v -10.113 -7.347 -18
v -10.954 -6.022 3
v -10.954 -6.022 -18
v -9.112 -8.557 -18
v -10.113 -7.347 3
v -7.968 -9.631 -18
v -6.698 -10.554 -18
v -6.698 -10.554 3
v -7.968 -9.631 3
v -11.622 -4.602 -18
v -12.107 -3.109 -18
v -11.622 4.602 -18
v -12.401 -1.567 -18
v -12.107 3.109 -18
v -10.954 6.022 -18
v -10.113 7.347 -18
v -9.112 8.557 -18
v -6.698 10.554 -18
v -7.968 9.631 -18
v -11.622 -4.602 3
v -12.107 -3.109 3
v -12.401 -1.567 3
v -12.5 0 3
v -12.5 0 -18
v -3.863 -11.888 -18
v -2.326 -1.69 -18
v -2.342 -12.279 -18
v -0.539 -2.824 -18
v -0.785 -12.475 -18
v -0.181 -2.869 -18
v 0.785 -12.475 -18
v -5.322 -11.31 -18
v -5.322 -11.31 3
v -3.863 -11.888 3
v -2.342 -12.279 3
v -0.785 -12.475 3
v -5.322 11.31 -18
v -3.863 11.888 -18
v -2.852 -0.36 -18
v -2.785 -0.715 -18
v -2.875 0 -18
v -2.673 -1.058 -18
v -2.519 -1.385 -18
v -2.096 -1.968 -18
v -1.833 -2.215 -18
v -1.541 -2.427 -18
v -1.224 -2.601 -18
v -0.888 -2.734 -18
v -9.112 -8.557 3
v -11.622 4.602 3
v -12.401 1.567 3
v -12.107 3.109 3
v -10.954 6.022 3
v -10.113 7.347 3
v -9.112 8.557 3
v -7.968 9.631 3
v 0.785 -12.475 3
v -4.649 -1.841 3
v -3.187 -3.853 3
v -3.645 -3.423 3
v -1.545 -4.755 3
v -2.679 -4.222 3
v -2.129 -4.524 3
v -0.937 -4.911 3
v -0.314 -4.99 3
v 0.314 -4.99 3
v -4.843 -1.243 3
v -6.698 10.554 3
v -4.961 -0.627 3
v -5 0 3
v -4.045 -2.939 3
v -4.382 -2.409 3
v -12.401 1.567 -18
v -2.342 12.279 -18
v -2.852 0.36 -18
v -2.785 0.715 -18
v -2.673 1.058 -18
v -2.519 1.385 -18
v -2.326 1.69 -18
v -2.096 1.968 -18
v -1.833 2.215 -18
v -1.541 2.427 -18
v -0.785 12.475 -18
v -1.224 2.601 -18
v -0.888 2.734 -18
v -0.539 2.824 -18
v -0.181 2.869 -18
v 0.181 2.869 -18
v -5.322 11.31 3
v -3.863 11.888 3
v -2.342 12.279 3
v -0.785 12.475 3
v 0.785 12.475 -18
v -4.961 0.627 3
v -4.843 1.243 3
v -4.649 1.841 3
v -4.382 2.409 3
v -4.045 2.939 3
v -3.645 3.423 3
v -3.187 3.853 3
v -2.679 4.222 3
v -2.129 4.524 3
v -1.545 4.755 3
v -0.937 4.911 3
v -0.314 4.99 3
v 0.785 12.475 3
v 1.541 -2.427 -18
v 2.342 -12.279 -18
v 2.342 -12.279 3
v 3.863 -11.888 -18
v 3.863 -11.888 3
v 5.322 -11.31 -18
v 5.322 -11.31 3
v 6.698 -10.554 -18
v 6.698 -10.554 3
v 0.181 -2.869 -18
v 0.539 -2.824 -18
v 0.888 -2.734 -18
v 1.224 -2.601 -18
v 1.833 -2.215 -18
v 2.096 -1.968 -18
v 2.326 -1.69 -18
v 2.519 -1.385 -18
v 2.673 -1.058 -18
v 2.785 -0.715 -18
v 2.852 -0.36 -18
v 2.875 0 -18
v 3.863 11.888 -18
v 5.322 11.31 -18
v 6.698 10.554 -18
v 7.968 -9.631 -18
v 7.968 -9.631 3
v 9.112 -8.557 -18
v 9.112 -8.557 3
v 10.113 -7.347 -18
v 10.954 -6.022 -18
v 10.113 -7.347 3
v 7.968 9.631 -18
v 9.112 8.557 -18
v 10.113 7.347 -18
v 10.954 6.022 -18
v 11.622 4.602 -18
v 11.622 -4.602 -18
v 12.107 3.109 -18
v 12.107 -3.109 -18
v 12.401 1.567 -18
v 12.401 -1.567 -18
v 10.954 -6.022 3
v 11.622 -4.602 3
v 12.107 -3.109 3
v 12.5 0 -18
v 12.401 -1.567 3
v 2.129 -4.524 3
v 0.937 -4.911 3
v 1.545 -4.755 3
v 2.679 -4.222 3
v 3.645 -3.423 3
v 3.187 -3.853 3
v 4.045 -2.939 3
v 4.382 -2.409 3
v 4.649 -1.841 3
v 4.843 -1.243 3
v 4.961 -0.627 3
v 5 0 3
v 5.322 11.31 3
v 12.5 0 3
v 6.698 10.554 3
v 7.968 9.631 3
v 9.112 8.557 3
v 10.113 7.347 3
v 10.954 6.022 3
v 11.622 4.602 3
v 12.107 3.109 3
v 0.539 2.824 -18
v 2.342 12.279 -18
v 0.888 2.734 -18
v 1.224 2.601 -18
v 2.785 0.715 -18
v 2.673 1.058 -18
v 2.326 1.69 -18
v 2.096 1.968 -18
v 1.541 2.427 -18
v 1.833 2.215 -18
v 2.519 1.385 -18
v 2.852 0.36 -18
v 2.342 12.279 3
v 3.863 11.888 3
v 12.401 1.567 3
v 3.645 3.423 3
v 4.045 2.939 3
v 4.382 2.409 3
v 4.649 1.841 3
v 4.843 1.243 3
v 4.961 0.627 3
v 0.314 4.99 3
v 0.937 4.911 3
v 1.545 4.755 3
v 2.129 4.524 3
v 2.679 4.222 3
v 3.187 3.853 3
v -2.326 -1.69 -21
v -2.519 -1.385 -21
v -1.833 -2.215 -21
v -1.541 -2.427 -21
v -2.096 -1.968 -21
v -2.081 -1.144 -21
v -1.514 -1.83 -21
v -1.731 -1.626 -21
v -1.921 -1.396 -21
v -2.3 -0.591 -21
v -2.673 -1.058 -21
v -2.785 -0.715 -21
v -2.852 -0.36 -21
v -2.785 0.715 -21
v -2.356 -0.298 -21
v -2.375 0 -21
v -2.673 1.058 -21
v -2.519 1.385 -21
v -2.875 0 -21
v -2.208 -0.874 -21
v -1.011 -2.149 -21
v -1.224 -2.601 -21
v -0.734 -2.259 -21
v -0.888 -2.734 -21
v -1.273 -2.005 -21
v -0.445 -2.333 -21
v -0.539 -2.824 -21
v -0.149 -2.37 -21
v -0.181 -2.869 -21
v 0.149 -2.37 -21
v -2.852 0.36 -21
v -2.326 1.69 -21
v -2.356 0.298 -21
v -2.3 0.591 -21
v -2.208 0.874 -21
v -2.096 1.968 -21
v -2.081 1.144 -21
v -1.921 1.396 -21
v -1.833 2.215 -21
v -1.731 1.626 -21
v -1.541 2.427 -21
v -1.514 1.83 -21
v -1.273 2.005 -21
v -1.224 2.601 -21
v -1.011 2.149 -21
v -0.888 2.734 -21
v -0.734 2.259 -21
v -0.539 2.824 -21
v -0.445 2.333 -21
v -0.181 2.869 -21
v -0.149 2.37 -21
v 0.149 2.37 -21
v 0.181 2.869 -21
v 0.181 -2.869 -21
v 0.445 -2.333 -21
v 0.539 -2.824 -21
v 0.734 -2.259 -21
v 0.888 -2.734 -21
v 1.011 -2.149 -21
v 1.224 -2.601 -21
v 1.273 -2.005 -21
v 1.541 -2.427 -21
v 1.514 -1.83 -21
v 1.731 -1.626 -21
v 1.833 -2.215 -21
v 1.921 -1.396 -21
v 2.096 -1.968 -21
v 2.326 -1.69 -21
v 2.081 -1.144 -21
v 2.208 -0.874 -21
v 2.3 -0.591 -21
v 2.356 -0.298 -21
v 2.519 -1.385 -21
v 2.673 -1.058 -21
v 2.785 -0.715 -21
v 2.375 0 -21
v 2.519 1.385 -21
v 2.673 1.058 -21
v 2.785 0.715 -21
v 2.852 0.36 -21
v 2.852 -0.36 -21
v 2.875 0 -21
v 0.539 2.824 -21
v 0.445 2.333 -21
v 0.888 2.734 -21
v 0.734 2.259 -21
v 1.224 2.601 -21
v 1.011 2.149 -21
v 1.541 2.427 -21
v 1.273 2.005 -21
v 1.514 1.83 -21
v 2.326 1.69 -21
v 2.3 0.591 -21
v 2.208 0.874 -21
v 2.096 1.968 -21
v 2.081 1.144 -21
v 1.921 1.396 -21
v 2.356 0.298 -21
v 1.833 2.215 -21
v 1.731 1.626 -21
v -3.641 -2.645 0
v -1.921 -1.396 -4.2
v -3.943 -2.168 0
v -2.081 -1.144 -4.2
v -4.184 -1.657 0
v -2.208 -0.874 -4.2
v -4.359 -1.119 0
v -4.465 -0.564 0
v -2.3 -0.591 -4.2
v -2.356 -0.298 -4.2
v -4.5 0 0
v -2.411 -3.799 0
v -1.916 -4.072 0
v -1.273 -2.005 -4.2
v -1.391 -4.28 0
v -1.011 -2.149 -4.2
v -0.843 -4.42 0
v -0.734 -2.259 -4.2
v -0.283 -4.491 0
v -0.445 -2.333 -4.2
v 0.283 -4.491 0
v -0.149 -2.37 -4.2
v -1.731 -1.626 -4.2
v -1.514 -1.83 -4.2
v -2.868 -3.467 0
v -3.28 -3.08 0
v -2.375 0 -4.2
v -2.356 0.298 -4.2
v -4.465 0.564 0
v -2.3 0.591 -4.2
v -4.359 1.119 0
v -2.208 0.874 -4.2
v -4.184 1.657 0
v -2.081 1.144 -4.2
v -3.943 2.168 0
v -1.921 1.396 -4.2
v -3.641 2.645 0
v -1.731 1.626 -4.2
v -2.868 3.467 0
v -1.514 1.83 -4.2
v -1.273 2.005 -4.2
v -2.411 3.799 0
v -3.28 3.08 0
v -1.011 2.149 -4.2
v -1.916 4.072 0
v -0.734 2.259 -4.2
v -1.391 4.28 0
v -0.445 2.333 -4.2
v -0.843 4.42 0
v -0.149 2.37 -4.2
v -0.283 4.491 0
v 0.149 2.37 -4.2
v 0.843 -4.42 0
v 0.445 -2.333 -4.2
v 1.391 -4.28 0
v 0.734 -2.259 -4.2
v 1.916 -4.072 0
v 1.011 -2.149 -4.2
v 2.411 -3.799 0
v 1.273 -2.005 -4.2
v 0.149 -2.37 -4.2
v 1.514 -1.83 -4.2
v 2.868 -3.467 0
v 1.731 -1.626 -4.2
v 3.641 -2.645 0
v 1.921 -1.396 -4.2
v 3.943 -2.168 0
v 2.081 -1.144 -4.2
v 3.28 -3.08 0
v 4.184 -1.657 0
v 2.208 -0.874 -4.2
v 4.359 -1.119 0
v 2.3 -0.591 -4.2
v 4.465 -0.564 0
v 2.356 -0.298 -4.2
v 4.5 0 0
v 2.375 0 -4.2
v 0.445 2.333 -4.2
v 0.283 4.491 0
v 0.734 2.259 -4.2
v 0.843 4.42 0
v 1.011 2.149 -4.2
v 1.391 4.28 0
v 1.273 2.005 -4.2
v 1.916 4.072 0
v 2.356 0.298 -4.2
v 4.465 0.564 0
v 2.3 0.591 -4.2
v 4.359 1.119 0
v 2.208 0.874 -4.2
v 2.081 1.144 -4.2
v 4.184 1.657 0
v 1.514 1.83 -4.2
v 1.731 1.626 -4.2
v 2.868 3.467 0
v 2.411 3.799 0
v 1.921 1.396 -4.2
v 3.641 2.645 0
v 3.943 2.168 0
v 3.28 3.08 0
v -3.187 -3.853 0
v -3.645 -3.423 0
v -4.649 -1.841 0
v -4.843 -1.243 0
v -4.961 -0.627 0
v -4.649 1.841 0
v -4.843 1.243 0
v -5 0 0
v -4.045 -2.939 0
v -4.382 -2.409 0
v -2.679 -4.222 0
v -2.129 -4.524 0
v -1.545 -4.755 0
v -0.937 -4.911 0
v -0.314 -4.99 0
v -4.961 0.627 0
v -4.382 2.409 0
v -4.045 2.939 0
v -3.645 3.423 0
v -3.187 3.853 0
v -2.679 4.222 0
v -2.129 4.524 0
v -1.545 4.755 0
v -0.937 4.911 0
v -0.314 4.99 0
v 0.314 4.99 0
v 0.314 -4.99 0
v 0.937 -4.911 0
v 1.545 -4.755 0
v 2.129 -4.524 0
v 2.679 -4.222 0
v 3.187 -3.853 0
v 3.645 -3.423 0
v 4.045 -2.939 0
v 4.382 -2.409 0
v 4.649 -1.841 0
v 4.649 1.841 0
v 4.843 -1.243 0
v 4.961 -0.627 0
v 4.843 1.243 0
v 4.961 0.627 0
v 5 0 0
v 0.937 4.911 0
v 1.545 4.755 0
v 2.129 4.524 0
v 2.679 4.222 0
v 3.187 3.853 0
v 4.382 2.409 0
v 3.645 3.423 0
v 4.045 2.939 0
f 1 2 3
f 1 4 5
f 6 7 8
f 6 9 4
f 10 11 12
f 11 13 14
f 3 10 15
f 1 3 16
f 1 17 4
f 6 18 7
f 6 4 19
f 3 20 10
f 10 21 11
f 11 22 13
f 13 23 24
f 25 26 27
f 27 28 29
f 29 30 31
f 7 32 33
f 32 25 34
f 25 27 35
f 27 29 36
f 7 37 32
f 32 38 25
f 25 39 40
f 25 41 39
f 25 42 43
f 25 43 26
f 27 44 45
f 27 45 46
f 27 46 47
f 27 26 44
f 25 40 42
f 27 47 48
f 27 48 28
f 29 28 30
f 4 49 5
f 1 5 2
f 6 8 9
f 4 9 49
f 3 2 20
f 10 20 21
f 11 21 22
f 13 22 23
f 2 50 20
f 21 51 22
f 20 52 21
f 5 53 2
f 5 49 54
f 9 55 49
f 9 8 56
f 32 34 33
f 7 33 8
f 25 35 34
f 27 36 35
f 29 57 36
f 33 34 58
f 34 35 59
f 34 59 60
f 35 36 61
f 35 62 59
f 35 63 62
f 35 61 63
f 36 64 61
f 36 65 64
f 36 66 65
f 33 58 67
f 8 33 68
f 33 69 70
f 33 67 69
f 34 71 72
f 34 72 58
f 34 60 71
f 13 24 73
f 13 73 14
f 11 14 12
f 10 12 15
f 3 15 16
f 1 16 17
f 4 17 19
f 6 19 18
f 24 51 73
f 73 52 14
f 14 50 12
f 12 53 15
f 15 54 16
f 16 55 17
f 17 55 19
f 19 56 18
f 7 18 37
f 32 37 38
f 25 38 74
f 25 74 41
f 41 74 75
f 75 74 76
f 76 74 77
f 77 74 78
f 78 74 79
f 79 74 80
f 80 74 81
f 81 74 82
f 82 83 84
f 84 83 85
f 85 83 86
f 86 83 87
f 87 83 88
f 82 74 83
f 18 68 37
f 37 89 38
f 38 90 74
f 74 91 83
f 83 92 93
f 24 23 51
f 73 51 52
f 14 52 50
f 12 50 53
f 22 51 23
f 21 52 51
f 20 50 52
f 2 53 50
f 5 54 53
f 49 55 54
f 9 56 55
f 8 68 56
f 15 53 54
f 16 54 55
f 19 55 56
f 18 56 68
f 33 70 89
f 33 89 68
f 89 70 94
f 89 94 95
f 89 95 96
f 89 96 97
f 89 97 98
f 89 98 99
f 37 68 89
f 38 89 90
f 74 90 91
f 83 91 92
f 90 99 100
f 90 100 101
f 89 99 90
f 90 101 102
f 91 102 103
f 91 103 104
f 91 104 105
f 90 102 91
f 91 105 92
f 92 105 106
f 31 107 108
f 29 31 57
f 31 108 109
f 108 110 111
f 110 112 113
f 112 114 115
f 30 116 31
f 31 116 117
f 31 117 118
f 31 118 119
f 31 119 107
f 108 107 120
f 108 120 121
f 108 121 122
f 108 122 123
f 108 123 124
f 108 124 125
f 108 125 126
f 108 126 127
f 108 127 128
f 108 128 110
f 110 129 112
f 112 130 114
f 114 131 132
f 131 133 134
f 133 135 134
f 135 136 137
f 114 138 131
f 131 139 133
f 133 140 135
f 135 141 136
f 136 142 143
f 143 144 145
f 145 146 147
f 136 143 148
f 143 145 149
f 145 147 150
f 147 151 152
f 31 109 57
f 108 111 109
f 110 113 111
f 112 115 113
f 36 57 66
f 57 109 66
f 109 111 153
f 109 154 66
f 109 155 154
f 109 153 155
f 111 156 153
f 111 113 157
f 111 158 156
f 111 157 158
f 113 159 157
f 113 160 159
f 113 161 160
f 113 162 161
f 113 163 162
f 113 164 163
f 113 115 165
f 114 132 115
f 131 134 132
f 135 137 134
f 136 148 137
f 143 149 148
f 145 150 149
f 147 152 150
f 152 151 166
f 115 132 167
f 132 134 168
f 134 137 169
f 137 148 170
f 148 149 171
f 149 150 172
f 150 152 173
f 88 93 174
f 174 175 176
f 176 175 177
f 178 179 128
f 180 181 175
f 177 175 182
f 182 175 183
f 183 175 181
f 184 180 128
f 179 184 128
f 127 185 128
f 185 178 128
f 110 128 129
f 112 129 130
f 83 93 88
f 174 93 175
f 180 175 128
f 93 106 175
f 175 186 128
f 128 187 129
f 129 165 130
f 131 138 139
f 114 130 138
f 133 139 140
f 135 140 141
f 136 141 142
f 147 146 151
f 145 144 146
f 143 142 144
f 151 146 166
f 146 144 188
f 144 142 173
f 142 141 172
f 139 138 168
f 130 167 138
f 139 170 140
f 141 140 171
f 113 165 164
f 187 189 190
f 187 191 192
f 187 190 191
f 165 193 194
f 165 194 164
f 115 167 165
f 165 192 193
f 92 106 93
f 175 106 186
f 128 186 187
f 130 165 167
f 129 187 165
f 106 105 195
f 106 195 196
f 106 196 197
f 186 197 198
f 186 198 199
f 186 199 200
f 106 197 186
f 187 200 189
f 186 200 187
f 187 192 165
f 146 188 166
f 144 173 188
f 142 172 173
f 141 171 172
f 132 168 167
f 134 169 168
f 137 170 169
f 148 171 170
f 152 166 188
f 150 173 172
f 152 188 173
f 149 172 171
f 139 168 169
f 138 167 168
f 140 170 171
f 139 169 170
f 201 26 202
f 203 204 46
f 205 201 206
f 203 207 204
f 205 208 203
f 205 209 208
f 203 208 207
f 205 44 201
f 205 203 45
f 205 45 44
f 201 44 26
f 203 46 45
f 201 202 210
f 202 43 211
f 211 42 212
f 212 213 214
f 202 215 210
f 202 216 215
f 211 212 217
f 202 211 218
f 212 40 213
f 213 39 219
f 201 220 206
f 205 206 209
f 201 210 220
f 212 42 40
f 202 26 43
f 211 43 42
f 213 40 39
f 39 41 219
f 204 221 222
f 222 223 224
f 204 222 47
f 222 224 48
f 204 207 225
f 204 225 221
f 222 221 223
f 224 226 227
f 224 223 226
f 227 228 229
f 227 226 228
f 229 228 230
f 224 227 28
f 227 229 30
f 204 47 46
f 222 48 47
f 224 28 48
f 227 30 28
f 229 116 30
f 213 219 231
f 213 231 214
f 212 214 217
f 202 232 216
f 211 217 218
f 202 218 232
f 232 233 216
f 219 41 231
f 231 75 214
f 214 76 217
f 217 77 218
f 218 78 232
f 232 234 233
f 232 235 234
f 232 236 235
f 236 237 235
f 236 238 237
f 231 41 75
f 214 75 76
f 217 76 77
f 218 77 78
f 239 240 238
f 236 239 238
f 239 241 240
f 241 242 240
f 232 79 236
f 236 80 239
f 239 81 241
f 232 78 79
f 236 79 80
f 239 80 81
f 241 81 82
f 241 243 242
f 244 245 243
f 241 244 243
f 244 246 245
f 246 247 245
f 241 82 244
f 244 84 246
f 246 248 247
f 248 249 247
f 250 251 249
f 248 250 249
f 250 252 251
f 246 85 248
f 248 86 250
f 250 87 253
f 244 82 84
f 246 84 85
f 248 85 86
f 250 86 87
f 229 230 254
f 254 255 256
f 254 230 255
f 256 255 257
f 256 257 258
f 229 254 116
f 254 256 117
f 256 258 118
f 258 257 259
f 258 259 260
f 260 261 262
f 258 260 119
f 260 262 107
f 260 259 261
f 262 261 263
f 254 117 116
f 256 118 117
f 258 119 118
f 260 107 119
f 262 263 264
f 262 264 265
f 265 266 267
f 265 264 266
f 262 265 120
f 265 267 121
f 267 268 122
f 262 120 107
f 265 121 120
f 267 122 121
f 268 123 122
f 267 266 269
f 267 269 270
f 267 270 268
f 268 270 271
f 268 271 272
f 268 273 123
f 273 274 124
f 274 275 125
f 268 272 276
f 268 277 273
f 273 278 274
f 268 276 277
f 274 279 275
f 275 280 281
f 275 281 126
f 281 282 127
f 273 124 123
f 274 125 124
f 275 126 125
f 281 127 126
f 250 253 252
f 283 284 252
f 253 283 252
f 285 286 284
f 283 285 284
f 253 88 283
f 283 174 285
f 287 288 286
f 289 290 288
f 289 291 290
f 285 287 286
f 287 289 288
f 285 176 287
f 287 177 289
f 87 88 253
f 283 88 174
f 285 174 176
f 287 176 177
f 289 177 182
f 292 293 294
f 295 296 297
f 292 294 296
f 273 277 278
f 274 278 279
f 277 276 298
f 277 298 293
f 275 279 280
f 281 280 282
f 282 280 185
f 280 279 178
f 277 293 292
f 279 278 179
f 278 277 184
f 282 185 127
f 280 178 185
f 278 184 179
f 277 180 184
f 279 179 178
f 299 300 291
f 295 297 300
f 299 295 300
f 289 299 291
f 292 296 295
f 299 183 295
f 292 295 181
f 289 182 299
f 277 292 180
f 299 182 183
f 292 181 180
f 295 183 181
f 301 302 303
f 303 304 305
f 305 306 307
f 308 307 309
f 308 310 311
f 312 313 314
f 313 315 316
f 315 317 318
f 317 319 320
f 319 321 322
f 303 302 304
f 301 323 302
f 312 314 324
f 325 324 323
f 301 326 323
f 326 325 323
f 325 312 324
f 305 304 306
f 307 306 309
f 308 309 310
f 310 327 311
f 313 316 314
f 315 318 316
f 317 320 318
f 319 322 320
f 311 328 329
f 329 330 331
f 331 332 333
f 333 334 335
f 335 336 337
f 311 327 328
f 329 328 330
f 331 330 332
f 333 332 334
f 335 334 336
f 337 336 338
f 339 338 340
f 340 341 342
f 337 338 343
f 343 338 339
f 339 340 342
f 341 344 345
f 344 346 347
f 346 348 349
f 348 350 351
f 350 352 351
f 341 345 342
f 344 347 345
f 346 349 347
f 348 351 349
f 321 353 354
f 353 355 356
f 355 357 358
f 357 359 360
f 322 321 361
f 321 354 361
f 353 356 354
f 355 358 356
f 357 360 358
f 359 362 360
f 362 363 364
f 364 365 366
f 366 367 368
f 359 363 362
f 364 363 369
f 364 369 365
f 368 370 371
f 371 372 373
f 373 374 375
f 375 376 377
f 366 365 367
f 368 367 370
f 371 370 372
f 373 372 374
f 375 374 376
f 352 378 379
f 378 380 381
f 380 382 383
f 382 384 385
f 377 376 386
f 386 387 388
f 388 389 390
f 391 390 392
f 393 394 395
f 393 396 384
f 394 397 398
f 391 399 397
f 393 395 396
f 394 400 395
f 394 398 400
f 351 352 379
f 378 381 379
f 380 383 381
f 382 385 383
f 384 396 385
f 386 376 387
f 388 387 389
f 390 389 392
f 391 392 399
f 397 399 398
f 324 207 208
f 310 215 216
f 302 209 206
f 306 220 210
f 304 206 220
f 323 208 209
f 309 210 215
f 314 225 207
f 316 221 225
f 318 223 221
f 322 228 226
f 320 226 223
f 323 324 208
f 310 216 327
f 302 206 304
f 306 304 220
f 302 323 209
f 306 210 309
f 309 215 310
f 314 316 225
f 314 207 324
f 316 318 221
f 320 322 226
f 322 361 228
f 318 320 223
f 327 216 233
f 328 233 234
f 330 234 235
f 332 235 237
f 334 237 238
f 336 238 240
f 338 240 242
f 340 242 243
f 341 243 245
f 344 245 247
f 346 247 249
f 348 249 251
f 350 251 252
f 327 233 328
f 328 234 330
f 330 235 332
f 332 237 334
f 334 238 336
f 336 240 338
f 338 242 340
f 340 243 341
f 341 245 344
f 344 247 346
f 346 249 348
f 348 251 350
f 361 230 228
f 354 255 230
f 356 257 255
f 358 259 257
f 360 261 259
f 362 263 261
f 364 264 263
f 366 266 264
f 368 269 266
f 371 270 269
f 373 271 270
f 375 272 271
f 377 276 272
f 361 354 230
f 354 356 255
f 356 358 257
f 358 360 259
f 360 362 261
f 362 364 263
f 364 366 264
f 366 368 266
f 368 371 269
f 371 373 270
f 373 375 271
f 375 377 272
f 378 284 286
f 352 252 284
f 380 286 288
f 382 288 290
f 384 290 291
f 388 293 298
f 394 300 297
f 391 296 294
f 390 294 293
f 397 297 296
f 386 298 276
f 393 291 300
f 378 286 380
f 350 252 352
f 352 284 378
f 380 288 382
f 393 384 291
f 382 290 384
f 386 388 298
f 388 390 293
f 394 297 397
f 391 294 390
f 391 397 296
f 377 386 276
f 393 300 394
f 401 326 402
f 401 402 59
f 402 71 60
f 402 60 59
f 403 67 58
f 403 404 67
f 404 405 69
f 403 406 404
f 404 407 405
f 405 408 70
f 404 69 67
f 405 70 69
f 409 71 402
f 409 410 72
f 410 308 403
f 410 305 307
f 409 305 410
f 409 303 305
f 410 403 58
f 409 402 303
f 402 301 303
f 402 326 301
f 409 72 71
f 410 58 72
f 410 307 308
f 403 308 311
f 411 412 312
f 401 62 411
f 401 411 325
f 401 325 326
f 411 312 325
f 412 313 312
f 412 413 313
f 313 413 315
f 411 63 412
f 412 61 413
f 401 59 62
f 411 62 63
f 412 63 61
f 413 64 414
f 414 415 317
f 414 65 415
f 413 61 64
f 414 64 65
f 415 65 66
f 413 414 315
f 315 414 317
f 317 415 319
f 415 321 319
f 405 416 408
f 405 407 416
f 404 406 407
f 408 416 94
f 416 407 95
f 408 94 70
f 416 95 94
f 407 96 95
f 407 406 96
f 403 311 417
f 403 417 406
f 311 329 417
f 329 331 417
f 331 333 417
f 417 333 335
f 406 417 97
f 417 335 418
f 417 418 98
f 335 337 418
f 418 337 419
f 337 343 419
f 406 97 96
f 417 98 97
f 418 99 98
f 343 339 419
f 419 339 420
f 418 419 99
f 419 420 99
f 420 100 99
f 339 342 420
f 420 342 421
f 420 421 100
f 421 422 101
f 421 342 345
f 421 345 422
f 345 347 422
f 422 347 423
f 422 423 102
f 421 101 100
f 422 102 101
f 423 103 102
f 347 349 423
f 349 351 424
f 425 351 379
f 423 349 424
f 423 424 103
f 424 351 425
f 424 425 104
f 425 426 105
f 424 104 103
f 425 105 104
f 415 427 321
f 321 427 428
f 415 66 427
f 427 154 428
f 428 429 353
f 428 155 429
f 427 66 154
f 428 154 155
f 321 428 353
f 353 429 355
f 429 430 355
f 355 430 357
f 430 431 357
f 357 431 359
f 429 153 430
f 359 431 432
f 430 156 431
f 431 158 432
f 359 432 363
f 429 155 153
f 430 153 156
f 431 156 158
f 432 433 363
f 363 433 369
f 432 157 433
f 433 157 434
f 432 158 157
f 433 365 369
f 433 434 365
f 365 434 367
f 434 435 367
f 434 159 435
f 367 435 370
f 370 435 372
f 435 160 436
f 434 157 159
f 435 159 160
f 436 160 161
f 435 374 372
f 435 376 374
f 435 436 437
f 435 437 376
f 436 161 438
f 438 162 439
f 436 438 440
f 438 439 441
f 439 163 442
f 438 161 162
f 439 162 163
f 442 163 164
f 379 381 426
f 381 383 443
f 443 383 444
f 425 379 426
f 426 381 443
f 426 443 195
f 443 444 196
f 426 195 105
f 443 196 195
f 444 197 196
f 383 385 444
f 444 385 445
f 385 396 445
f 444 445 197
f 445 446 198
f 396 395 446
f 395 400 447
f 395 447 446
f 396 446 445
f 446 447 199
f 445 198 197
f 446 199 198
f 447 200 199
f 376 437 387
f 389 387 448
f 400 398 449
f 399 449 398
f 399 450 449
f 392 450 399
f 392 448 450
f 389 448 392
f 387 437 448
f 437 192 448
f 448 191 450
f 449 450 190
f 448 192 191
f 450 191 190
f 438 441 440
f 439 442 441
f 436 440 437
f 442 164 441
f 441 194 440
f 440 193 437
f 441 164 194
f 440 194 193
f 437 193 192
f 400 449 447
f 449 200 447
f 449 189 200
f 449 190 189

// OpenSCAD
$fn = 50;

difference() {
	union() {
		translate(v = [0, 0, -18.0]) {
			cylinder(h = 21, r = 12.5);
		}
		#translate(v = [0, 0, -21.0]) {
			cylinder(h = 21, r = 2.875);
		}
	}
	union() {
		translate(v = [0, 0, 0]) {
			rotate(a = [0, 0, 0]) {
				difference() {
					union() {
						translate(v = [0, 0, -21.0]) {
							cylinder(h = 21, r = 2.25);
						}
						translate(v = [0, 0, -4.2]) {
							cylinder(h = 4.2, r1 = 2.375, r2 = 4.5);
						}
						translate(v = [0, 0, -21.0]) {
							cylinder(h = 21, r = 2.375);
						}
						translate(v = [0, 0, -21.0]) {
							cylinder(h = 21, r = 2.25);
						}
					}
					union();
				}
			}
		}
		#cylinder(h = 3, r = 5.0);
	}
}
